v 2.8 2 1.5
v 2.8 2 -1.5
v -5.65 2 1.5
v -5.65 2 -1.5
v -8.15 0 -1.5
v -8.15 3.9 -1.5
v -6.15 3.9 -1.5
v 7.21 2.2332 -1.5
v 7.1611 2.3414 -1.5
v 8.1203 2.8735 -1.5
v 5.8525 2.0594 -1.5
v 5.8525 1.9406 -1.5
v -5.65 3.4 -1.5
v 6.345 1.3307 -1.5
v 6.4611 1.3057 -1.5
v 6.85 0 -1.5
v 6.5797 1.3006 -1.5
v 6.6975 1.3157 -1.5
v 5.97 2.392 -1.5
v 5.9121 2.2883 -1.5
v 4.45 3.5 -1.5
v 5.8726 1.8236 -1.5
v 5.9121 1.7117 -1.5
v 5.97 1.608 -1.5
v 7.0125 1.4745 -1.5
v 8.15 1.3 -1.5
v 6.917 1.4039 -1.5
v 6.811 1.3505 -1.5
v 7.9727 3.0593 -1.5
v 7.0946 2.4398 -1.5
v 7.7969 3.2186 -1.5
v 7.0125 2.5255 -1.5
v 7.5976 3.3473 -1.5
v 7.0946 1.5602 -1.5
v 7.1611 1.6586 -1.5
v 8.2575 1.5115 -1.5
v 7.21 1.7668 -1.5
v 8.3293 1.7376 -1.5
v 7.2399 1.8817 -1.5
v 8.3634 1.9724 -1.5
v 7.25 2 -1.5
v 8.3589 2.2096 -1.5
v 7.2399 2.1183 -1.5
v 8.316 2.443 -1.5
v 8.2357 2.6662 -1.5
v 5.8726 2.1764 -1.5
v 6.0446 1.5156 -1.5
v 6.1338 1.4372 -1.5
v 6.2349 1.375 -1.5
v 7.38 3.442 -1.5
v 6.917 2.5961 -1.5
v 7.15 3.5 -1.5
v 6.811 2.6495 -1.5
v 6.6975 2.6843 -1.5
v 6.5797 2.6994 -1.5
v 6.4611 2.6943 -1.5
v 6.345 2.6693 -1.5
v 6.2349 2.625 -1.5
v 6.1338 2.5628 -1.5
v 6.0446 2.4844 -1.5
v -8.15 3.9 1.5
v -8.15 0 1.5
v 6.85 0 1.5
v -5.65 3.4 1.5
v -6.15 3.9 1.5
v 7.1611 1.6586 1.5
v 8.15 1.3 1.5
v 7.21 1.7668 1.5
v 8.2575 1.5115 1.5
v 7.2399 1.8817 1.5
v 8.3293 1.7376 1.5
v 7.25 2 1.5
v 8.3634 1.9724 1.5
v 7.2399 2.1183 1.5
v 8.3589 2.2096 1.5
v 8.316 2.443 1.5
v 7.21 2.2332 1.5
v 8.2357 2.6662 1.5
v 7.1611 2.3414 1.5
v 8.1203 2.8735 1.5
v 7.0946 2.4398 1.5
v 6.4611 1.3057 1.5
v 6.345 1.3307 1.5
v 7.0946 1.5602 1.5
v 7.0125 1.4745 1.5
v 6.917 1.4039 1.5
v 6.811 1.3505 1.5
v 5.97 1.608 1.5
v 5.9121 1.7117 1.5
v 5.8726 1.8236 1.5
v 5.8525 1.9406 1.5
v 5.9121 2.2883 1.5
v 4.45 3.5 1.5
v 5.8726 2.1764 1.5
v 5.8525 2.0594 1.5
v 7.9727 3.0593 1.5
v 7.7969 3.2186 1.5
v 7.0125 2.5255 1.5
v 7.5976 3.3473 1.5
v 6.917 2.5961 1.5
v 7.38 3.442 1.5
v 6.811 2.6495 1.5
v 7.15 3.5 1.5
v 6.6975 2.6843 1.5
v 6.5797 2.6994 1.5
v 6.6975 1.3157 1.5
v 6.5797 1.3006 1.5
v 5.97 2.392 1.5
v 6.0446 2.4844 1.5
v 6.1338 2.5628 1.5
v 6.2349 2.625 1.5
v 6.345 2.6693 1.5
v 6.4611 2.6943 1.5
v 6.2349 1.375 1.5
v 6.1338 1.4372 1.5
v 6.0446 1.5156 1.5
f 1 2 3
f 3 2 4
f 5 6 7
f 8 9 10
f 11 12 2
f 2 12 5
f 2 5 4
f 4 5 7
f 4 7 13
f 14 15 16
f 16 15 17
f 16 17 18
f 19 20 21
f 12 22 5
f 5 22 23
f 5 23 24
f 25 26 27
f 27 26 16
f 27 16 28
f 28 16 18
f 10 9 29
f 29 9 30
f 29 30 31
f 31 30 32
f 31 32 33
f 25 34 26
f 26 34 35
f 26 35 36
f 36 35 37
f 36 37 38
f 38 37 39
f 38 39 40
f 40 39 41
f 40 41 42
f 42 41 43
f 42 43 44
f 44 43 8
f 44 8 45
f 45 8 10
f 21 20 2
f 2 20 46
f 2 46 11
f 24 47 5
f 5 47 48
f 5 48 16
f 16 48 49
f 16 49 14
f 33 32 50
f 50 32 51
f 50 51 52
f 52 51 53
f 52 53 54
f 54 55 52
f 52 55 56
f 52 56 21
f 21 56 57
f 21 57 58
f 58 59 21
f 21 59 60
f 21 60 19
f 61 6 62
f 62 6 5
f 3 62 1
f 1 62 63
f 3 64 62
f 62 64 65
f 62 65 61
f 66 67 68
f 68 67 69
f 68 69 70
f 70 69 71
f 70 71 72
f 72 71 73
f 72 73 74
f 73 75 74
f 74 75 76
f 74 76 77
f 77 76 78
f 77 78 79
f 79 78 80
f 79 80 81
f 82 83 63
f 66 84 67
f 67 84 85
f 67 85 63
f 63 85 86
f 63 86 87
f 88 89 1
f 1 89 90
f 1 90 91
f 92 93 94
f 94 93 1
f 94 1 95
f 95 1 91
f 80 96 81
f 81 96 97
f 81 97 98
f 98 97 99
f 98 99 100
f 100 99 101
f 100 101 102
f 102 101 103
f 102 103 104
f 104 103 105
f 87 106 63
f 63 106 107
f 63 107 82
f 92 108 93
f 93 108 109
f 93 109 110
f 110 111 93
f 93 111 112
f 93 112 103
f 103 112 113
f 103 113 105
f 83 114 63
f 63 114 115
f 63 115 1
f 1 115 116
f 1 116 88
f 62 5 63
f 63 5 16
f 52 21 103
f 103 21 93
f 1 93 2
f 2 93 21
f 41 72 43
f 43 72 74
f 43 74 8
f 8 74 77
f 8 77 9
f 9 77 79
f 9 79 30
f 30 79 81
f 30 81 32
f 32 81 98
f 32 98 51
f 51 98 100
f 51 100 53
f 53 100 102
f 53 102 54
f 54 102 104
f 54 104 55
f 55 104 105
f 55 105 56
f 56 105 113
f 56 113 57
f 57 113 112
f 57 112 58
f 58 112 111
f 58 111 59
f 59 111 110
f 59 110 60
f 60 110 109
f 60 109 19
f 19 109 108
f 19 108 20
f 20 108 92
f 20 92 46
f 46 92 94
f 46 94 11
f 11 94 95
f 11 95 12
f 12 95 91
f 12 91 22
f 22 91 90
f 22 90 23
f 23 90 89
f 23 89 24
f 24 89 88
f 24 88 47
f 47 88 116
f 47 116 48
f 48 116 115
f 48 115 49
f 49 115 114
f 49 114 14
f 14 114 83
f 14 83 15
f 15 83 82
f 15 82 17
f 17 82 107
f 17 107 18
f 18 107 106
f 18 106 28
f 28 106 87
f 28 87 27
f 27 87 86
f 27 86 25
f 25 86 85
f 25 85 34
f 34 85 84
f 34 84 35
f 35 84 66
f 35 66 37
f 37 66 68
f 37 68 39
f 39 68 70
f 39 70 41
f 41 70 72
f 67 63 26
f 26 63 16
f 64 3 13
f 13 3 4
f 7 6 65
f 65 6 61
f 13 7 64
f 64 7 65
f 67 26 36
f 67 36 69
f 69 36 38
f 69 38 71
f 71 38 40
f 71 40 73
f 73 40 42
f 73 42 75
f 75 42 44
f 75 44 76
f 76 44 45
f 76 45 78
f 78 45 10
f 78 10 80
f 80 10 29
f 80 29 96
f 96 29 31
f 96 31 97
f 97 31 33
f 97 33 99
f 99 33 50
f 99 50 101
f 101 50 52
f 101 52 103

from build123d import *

# Parameters (mm, degrees)
SKETCH1_W                  = 16.3
SKETCH1_H                  = 3
BOSS_EXTRUDE1_DEPTH        = 2
SKETCH2_W                  = 2.9
SKETCH2_H                  = 3
BOSS_EXTRUDE2_DEPTH        = 1.5
SKETCH6_W                  = 0.8
SKETCH6_H                  = 1.5
BOSS_EXTRUDE4_DEPTH        = 3
F_1_4_1_4_DIAMETER_HOLE1_D = 1.4
CUT_EXTRUDE1_DEPTH         = 3
SKETCH9_W                  = 2.5
SKETCH9_H                  = 3
BOSS_EXTRUDE5_DEPTH        = 1.9
CUT_EXTRUDE2_DEPTH         = 10.520110293
CUT_EXTRUDE3_DEPTH         = 10
BOSS_EXTRUDE7_DEPTH        = 3


with BuildPart() as part:
    # Sketch1 → Boss-Extrude1 (new body)
    with BuildSketch(Plane(origin=(0, 0, 0), x_dir=(1, 0, 0), z_dir=(0, 1, 0))):
        Rectangle(SKETCH1_W, SKETCH1_H)
    extrude(amount=BOSS_EXTRUDE1_DEPTH)

    # Sketch2 → Boss-Extrude2 (add)
    with BuildSketch(Plane(origin=(0, 2, 0), x_dir=(1, 0, 0), z_dir=(0, 1, 0))):
        with Locations((5.9, 0)):
            Rectangle(SKETCH2_W, SKETCH2_H)
    extrude(amount=BOSS_EXTRUDE2_DEPTH)

    # Sketch6 → Boss-Extrude4 (add)
    with BuildSketch(Plane.XY.offset(1.5)):
        Polygon((4.45, 3.5), (2.8, 2), (4.45, 2), align=None)
        with Locations((7.75, 2.75)):
            Rectangle(SKETCH6_W, SKETCH6_H)
    extrude(amount=-BOSS_EXTRUDE4_DEPTH)

    # Ø1.4 (1.4) Diameter Hole1 (through all)
    with Locations(Plane.XY.offset(1.5)):
        with Locations((6.55, 2)):
            Hole(F_1_4_1_4_DIAMETER_HOLE1_D / 2)

    # Sketch8 → Cut-Extrude1 (cut)
    with BuildSketch(Plane.XY.offset(1.5)):
        Polygon((8.15, 0), (6.85, 0), (8.15, 1.3), align=None)
    extrude(amount=-CUT_EXTRUDE1_DEPTH, mode=Mode.SUBTRACT)

    # Sketch9 → Boss-Extrude5 (add)
    with BuildSketch(Plane(origin=(0, 2, 0), x_dir=(1, 0, 0), z_dir=(0, 1, 0))):
        with Locations((-6.9, 0)):
            Rectangle(SKETCH9_W, SKETCH9_H)
    extrude(amount=BOSS_EXTRUDE5_DEPTH)

    # Sketch10 → Cut-Extrude2 (cut, through all)
    with BuildSketch(Plane.XY.offset(1.5)):
        Polygon((-5.65, 3.9), (-5.65, 3.4), (-6.15, 3.9), align=None)
    extrude(amount=-CUT_EXTRUDE2_DEPTH, mode=Mode.SUBTRACT)

    # Sketch13 → Cut-Extrude3 (cut)
    with BuildSketch(Plane(origin=(0, 0, -1.5), x_dir=(-1, 0, 0), z_dir=(0, 0, -1))):
        Polygon((-8.15, 3.5), (-8.15, 2.5), (-7.15, 3.5), align=None)
    extrude(amount=-CUT_EXTRUDE3_DEPTH, mode=Mode.SUBTRACT)

    # Sketch14 → Boss-Extrude7 (add)
    with BuildSketch(Plane(origin=(0, 0, -1.5), x_dir=(-1, 0, 0), z_dir=(0, 0, -1))):
        with BuildLine():
            Line((-8.15, 1.3), (-7.15, 3.5))
            ThreePointArc((-7.15, 3.5), (-8.235707881, 2.666230855), (-8.15, 1.3))
        make_face()
    extrude(amount=-BOSS_EXTRUDE7_DEPTH)


solid = part.part
